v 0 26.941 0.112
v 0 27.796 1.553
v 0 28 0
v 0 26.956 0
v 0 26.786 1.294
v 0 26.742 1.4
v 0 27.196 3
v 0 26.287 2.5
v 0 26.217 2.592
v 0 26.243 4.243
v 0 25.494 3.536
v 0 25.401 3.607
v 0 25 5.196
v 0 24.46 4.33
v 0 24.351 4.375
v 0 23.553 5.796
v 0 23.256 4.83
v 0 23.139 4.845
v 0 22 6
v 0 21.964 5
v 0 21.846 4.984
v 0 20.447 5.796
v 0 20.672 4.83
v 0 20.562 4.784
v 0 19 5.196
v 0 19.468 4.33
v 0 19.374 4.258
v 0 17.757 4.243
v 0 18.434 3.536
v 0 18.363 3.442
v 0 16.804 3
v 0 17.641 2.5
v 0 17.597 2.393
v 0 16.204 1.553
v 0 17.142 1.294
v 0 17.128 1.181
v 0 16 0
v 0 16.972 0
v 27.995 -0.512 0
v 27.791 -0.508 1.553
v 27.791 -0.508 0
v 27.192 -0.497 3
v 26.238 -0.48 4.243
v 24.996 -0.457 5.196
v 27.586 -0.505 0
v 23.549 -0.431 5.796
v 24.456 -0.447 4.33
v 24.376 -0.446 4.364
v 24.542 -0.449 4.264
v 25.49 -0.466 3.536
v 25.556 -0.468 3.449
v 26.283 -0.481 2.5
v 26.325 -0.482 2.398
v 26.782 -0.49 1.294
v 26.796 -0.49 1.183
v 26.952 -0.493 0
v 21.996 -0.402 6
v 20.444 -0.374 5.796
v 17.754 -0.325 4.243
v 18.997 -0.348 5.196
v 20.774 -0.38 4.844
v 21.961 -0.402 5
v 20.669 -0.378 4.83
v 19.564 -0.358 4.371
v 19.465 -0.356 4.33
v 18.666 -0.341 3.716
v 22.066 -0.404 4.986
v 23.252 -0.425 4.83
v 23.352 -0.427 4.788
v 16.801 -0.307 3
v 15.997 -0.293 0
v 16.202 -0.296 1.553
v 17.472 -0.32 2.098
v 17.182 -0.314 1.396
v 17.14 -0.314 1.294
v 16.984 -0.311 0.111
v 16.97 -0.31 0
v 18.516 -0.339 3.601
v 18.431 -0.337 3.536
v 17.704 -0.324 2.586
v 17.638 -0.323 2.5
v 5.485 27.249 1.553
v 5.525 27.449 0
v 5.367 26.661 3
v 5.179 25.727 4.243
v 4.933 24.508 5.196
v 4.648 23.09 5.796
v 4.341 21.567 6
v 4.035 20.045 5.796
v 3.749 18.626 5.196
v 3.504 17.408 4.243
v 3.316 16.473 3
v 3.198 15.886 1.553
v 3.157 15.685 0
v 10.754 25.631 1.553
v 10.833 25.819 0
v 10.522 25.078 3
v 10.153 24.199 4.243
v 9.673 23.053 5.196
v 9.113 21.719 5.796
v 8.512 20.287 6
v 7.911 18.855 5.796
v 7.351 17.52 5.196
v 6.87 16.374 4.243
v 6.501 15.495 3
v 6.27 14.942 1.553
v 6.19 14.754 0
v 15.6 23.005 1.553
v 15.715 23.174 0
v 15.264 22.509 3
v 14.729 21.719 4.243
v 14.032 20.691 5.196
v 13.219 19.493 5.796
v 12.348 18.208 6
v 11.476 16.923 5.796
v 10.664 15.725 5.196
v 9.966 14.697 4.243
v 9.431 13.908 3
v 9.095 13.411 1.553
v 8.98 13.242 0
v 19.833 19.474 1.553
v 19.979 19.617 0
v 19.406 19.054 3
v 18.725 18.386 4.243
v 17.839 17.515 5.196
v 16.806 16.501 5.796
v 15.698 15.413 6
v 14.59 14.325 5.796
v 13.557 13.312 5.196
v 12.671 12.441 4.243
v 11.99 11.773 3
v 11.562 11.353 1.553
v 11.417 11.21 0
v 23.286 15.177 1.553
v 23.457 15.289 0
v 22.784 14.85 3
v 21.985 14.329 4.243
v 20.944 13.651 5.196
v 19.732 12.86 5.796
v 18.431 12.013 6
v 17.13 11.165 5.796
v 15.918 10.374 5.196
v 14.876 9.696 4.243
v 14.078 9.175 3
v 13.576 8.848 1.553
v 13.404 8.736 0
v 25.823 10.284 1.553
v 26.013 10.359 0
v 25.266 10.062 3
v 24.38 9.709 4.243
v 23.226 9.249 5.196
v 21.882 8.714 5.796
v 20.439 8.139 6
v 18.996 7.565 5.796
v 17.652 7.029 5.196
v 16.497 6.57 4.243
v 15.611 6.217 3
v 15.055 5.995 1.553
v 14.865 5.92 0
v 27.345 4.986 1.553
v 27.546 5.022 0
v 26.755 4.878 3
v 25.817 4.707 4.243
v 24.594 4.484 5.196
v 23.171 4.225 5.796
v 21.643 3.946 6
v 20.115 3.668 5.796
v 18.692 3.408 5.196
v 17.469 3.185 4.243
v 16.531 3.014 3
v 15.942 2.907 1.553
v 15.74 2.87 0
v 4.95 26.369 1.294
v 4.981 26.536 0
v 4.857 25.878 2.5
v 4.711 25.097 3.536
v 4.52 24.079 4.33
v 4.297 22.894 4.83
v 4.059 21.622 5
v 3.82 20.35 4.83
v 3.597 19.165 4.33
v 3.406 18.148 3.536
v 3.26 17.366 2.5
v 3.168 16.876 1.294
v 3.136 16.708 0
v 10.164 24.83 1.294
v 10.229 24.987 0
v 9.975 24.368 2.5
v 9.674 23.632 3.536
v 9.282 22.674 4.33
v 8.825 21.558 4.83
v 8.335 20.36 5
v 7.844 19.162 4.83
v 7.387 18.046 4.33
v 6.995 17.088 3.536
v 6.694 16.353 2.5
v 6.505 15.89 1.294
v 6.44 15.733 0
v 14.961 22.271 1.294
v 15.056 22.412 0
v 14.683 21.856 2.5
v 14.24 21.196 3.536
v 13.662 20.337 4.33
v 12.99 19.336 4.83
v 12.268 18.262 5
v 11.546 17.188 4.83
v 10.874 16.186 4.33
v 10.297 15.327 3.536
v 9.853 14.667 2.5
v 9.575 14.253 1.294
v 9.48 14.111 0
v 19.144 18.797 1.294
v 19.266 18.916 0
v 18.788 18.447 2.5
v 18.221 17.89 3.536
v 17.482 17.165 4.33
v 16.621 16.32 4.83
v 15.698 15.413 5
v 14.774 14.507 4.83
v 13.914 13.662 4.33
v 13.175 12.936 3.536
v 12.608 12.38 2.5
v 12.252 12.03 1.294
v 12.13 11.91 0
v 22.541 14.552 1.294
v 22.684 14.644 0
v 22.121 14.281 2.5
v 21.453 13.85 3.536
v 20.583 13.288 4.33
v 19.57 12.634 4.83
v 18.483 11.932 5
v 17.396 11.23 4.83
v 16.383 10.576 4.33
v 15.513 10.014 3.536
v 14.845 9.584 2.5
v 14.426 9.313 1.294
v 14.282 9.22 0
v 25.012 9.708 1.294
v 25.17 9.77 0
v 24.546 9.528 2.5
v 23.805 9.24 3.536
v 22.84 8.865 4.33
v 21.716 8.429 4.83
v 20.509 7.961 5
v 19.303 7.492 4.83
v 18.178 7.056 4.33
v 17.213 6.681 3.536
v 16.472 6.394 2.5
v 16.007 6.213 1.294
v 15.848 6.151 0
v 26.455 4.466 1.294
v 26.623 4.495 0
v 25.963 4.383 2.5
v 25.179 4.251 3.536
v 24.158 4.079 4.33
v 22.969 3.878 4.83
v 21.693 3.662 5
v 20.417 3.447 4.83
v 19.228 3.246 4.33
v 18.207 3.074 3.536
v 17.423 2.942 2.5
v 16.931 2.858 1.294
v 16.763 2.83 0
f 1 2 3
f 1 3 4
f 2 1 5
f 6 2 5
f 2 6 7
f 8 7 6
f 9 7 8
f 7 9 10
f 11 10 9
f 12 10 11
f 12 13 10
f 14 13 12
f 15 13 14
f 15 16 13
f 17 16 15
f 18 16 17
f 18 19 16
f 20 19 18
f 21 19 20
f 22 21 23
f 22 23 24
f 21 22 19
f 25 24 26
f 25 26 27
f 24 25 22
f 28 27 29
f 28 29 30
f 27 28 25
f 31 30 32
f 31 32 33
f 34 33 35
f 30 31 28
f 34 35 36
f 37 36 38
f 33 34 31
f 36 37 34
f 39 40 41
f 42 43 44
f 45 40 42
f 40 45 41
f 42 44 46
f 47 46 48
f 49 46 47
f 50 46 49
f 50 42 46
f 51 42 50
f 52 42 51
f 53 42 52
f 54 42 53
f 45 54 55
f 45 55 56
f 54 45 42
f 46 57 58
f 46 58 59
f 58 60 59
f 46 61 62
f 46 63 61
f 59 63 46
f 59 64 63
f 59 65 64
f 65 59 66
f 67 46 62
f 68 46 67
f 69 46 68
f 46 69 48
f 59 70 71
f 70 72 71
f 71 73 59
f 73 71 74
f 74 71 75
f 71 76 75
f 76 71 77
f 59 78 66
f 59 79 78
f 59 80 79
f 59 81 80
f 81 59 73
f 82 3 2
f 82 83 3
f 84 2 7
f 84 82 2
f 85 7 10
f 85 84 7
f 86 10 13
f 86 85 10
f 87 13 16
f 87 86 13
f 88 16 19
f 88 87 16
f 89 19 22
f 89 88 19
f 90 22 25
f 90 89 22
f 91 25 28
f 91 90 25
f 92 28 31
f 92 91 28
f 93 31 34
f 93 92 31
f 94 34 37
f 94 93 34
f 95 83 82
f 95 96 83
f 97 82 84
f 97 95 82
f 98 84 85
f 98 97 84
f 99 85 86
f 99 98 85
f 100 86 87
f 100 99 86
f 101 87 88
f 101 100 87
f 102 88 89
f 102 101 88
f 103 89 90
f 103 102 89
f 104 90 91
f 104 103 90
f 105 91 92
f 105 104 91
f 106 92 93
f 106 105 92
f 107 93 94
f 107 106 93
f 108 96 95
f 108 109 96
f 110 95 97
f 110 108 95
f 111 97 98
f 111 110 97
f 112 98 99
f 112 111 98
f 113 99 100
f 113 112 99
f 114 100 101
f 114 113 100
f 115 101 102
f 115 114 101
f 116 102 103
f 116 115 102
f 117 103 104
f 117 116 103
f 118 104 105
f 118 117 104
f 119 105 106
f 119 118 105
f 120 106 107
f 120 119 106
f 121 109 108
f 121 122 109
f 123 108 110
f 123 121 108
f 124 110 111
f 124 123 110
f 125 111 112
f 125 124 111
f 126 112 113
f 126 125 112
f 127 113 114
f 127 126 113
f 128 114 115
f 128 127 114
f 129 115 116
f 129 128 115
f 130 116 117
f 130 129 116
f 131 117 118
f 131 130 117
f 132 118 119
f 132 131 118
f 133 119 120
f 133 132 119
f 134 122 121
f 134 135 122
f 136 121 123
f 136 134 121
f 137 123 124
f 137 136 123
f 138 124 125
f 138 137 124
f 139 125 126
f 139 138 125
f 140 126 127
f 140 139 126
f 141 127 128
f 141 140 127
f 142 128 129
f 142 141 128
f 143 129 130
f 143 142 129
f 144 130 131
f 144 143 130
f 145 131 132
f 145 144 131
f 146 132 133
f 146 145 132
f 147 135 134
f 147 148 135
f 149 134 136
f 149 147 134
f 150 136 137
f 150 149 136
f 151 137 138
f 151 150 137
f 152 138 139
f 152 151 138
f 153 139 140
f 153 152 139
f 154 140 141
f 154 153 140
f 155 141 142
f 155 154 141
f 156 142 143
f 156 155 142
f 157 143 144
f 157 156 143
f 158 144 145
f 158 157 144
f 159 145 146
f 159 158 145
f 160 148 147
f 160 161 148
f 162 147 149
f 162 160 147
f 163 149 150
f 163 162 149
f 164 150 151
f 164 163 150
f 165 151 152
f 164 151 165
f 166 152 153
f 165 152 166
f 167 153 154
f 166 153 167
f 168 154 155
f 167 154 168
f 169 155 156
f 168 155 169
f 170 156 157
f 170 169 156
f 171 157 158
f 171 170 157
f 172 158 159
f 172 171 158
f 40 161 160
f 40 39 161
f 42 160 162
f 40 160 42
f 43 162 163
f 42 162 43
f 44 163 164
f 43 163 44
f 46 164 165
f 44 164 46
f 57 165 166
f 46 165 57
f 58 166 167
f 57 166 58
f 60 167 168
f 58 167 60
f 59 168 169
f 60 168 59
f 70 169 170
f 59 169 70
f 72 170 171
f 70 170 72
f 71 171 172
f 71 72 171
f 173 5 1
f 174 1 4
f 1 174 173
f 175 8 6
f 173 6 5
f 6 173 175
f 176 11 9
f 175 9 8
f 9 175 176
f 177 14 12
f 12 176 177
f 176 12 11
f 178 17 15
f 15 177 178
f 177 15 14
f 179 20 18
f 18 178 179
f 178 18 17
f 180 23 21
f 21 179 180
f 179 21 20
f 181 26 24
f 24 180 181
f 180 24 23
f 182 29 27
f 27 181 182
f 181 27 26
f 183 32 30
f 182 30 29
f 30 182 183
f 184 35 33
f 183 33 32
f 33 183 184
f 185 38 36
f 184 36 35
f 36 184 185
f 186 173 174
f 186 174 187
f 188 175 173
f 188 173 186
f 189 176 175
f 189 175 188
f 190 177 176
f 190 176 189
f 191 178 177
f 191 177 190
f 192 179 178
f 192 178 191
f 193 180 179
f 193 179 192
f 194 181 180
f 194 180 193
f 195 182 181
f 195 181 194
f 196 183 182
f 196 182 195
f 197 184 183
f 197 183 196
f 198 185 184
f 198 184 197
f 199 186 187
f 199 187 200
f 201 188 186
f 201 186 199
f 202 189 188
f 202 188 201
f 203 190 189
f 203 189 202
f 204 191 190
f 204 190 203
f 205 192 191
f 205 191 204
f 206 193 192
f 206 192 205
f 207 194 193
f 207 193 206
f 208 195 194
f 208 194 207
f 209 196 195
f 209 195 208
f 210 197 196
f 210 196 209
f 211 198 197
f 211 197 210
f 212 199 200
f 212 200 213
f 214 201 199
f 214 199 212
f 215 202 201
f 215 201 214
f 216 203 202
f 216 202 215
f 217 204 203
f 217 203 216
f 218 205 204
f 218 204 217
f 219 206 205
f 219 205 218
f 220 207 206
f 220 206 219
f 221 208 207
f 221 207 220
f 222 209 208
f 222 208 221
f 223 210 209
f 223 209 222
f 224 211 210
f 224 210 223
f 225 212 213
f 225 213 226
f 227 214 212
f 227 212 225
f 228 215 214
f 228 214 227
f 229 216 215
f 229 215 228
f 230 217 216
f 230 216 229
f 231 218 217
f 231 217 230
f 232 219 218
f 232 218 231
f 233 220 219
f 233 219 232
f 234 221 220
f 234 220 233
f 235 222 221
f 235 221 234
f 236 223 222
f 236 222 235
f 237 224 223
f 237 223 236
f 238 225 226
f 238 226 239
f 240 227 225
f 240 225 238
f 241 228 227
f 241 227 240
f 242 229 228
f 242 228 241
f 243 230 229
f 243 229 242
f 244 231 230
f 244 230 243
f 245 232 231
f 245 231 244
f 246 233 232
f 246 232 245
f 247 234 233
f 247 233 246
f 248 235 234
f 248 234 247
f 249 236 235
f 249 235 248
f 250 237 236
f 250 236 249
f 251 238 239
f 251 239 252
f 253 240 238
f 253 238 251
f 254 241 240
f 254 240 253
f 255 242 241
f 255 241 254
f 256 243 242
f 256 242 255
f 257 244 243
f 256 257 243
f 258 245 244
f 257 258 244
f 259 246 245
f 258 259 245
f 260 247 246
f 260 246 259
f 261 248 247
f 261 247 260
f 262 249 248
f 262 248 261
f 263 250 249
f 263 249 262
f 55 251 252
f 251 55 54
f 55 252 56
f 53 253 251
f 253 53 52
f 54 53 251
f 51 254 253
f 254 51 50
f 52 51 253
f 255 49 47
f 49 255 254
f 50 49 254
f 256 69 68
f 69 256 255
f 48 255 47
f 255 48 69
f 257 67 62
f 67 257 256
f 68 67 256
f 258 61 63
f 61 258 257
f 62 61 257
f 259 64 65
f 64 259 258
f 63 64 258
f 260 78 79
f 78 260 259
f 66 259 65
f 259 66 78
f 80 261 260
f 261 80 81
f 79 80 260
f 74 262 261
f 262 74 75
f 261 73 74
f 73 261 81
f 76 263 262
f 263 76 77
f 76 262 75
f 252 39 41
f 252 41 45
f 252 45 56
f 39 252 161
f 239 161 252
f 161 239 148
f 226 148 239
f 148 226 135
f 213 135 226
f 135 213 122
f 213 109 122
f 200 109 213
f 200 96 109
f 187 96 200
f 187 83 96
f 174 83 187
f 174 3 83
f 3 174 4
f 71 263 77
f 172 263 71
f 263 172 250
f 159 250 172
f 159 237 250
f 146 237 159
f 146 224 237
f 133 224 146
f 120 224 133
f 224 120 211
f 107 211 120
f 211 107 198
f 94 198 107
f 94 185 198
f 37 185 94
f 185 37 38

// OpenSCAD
// file: ../build_environments.scad
// build_environments.scad: modules to build level sections
//

module pool(diameter=10.0, wall_height=2.0, step_width=3.0, connections=[])
{
    difference() {
        union() {
        difference() {
            cylinder(h=0.5,r1=diameter+step_width,r2=diameter+step_width,$fn=48);
            translate([0,0,-0.1])
                cylinder(h=0.7,r1=diameter,r2=diameter,$fn=48);
        }
        difference() {
            cylinder(h=wall_height,r1=diameter+step_width+1.0,r2=diameter+step_width+1.0,$fn=48);
            translate([0,0,-0.1])
                cylinder(h=wall_height+0.2,r1=diameter+step_width,r2=diameter+step_width,$fn=48);
        }
        }
    
        for (c = connections)
        {
            rotate([0,90,0]) {
                angle = atan2(c[1],c[0]);
                rotate([-angle,0,0]) {
                    cylinder(h=diameter+5.0,r1=c[2],r2=c[2],$fn=48);
                }
            }
        }
    }
}

module straight(length=10.0, width=2.0, dy1=0.0, dy2=0.0, dz=0.0)
{
    dims = [0, 0, 0, 0, 0, (dz/length)];
    matrix = [
        [ 1, dims[0], dims[1], 0 ],
        [ dims[2], 1, dims[4], 0 ],
        [ dims[5], dims[3], 1, 0 ],
        [ 0, 0, 0, 1 ]
    ];
    multmatrix(matrix)
    difference() {
        translate([dy1,0,0])
        union() {
            rotate([0,90,0]) {
                difference() {
                    cylinder(h=(length-dy1-dy2),r1=width+1.0,r2=width+1.0,$fn=24);
                    translate([0,0,-0.1])
                        cylinder(h=(length-dy1-dy2+0.2),r1=width,r2=width,$fn=24);
                }
                difference() {
                    cylinder(h=1.0,r1=width+2.0,r2=width+2.0,$fn=24);
                    translate([0,0,-0.1])
                        cylinder(h=1.2,r1=width,r2=width,$fn=24);
                }
                translate([0,0,(length-dy1-dy2)-1.0]) {
                    difference() {
                        cylinder(h=1.0,r1=width+2.0,r2=width+2.0,$fn=24);
                        translate([0,0,-0.1])
                            cylinder(h=1.2,r1=width,r2=width,$fn=24);
                    }
                }
            }
        }
        translate([0,0,-(2*width+4.0)/2])
            cube([3*length,3*length,2*width+4.0],center=true);
    }
}

module curve(p0=[0,0], center=[0,0], dir=1, angle=0.0, width=2.0)
{
    radius = sqrt((p0[0]-center[0])*(p0[0]-center[0]) + (p0[1]-center[1])*(p0[1]-center[1]));
    if (dir == 0) {
        difference() {
            rotate([0,0,-90])
            difference() {
                rotate_extrude(angle = angle, convexity = 10, $fn=32)
                    translate([radius, 0, 0])
                        circle(r = width+1.0,$fn=24);
                rotate([0,0,-1.0])
                    rotate_extrude(angle = angle+2.0, convexity = 10, $fn=32)
                        translate([radius, 0, 0])
                            circle(r = width,$fn=24);
            }
            translate([0,0,-(2*width+4.0)/2])
                cube([5*radius,5*radius,2*width+4.0],center=true);
        }
    }
    else {
        difference() {
            rotate([0,0,90])
            difference() {
                rotate_extrude(angle = -angle, convexity = 10, $fn=32)
                    translate([radius, 0, 0])
                        circle(r = width+1.0,$fn=24);
                rotate([0,0,1.0])
                    rotate_extrude(angle = -angle-2.0, convexity = 10, $fn=32)
                        translate([radius, 0, 0])
                            circle(r = width,$fn=24);
            }
            translate([0,0,-(2*width+4.0)/2])
                cube([5*radius,5*radius,2*width+4.0],center=true);
        }
    }

}

// test pool
//pool(diameter=12.0000, wall_height=3.0000, step_width=3.0000, connections=[[0.0000,-26.0000,2.0000], [23.6074,0.0000,2.0000]]);

// test straight, slope
//straight(length=26.0000, width=2.0000, dy1=11.8322, dy2=6.7082, dz=0.0000);
//straight(length=29.1549, width=12.0000, dy1=0.0000, dy2=0.0000, dz=-15.0000);

// test curve
//curve(p0=[23.6074, 0.0000], center=[23.6074, 5.0000], dir=0, angle=60.1011, width=2.0000);
//curve(p0=[33.6426, 12.4219], center=[37.9771, 9.9295], dir=1, angle=120.4627, width=2.0000);
// main file
use <../build_environments.scad>;
curve(p0=[-59.7186, -182.9241], center=[-46.8485, -165.0815], dir=1, angle=91.0480, width=5.0000);
